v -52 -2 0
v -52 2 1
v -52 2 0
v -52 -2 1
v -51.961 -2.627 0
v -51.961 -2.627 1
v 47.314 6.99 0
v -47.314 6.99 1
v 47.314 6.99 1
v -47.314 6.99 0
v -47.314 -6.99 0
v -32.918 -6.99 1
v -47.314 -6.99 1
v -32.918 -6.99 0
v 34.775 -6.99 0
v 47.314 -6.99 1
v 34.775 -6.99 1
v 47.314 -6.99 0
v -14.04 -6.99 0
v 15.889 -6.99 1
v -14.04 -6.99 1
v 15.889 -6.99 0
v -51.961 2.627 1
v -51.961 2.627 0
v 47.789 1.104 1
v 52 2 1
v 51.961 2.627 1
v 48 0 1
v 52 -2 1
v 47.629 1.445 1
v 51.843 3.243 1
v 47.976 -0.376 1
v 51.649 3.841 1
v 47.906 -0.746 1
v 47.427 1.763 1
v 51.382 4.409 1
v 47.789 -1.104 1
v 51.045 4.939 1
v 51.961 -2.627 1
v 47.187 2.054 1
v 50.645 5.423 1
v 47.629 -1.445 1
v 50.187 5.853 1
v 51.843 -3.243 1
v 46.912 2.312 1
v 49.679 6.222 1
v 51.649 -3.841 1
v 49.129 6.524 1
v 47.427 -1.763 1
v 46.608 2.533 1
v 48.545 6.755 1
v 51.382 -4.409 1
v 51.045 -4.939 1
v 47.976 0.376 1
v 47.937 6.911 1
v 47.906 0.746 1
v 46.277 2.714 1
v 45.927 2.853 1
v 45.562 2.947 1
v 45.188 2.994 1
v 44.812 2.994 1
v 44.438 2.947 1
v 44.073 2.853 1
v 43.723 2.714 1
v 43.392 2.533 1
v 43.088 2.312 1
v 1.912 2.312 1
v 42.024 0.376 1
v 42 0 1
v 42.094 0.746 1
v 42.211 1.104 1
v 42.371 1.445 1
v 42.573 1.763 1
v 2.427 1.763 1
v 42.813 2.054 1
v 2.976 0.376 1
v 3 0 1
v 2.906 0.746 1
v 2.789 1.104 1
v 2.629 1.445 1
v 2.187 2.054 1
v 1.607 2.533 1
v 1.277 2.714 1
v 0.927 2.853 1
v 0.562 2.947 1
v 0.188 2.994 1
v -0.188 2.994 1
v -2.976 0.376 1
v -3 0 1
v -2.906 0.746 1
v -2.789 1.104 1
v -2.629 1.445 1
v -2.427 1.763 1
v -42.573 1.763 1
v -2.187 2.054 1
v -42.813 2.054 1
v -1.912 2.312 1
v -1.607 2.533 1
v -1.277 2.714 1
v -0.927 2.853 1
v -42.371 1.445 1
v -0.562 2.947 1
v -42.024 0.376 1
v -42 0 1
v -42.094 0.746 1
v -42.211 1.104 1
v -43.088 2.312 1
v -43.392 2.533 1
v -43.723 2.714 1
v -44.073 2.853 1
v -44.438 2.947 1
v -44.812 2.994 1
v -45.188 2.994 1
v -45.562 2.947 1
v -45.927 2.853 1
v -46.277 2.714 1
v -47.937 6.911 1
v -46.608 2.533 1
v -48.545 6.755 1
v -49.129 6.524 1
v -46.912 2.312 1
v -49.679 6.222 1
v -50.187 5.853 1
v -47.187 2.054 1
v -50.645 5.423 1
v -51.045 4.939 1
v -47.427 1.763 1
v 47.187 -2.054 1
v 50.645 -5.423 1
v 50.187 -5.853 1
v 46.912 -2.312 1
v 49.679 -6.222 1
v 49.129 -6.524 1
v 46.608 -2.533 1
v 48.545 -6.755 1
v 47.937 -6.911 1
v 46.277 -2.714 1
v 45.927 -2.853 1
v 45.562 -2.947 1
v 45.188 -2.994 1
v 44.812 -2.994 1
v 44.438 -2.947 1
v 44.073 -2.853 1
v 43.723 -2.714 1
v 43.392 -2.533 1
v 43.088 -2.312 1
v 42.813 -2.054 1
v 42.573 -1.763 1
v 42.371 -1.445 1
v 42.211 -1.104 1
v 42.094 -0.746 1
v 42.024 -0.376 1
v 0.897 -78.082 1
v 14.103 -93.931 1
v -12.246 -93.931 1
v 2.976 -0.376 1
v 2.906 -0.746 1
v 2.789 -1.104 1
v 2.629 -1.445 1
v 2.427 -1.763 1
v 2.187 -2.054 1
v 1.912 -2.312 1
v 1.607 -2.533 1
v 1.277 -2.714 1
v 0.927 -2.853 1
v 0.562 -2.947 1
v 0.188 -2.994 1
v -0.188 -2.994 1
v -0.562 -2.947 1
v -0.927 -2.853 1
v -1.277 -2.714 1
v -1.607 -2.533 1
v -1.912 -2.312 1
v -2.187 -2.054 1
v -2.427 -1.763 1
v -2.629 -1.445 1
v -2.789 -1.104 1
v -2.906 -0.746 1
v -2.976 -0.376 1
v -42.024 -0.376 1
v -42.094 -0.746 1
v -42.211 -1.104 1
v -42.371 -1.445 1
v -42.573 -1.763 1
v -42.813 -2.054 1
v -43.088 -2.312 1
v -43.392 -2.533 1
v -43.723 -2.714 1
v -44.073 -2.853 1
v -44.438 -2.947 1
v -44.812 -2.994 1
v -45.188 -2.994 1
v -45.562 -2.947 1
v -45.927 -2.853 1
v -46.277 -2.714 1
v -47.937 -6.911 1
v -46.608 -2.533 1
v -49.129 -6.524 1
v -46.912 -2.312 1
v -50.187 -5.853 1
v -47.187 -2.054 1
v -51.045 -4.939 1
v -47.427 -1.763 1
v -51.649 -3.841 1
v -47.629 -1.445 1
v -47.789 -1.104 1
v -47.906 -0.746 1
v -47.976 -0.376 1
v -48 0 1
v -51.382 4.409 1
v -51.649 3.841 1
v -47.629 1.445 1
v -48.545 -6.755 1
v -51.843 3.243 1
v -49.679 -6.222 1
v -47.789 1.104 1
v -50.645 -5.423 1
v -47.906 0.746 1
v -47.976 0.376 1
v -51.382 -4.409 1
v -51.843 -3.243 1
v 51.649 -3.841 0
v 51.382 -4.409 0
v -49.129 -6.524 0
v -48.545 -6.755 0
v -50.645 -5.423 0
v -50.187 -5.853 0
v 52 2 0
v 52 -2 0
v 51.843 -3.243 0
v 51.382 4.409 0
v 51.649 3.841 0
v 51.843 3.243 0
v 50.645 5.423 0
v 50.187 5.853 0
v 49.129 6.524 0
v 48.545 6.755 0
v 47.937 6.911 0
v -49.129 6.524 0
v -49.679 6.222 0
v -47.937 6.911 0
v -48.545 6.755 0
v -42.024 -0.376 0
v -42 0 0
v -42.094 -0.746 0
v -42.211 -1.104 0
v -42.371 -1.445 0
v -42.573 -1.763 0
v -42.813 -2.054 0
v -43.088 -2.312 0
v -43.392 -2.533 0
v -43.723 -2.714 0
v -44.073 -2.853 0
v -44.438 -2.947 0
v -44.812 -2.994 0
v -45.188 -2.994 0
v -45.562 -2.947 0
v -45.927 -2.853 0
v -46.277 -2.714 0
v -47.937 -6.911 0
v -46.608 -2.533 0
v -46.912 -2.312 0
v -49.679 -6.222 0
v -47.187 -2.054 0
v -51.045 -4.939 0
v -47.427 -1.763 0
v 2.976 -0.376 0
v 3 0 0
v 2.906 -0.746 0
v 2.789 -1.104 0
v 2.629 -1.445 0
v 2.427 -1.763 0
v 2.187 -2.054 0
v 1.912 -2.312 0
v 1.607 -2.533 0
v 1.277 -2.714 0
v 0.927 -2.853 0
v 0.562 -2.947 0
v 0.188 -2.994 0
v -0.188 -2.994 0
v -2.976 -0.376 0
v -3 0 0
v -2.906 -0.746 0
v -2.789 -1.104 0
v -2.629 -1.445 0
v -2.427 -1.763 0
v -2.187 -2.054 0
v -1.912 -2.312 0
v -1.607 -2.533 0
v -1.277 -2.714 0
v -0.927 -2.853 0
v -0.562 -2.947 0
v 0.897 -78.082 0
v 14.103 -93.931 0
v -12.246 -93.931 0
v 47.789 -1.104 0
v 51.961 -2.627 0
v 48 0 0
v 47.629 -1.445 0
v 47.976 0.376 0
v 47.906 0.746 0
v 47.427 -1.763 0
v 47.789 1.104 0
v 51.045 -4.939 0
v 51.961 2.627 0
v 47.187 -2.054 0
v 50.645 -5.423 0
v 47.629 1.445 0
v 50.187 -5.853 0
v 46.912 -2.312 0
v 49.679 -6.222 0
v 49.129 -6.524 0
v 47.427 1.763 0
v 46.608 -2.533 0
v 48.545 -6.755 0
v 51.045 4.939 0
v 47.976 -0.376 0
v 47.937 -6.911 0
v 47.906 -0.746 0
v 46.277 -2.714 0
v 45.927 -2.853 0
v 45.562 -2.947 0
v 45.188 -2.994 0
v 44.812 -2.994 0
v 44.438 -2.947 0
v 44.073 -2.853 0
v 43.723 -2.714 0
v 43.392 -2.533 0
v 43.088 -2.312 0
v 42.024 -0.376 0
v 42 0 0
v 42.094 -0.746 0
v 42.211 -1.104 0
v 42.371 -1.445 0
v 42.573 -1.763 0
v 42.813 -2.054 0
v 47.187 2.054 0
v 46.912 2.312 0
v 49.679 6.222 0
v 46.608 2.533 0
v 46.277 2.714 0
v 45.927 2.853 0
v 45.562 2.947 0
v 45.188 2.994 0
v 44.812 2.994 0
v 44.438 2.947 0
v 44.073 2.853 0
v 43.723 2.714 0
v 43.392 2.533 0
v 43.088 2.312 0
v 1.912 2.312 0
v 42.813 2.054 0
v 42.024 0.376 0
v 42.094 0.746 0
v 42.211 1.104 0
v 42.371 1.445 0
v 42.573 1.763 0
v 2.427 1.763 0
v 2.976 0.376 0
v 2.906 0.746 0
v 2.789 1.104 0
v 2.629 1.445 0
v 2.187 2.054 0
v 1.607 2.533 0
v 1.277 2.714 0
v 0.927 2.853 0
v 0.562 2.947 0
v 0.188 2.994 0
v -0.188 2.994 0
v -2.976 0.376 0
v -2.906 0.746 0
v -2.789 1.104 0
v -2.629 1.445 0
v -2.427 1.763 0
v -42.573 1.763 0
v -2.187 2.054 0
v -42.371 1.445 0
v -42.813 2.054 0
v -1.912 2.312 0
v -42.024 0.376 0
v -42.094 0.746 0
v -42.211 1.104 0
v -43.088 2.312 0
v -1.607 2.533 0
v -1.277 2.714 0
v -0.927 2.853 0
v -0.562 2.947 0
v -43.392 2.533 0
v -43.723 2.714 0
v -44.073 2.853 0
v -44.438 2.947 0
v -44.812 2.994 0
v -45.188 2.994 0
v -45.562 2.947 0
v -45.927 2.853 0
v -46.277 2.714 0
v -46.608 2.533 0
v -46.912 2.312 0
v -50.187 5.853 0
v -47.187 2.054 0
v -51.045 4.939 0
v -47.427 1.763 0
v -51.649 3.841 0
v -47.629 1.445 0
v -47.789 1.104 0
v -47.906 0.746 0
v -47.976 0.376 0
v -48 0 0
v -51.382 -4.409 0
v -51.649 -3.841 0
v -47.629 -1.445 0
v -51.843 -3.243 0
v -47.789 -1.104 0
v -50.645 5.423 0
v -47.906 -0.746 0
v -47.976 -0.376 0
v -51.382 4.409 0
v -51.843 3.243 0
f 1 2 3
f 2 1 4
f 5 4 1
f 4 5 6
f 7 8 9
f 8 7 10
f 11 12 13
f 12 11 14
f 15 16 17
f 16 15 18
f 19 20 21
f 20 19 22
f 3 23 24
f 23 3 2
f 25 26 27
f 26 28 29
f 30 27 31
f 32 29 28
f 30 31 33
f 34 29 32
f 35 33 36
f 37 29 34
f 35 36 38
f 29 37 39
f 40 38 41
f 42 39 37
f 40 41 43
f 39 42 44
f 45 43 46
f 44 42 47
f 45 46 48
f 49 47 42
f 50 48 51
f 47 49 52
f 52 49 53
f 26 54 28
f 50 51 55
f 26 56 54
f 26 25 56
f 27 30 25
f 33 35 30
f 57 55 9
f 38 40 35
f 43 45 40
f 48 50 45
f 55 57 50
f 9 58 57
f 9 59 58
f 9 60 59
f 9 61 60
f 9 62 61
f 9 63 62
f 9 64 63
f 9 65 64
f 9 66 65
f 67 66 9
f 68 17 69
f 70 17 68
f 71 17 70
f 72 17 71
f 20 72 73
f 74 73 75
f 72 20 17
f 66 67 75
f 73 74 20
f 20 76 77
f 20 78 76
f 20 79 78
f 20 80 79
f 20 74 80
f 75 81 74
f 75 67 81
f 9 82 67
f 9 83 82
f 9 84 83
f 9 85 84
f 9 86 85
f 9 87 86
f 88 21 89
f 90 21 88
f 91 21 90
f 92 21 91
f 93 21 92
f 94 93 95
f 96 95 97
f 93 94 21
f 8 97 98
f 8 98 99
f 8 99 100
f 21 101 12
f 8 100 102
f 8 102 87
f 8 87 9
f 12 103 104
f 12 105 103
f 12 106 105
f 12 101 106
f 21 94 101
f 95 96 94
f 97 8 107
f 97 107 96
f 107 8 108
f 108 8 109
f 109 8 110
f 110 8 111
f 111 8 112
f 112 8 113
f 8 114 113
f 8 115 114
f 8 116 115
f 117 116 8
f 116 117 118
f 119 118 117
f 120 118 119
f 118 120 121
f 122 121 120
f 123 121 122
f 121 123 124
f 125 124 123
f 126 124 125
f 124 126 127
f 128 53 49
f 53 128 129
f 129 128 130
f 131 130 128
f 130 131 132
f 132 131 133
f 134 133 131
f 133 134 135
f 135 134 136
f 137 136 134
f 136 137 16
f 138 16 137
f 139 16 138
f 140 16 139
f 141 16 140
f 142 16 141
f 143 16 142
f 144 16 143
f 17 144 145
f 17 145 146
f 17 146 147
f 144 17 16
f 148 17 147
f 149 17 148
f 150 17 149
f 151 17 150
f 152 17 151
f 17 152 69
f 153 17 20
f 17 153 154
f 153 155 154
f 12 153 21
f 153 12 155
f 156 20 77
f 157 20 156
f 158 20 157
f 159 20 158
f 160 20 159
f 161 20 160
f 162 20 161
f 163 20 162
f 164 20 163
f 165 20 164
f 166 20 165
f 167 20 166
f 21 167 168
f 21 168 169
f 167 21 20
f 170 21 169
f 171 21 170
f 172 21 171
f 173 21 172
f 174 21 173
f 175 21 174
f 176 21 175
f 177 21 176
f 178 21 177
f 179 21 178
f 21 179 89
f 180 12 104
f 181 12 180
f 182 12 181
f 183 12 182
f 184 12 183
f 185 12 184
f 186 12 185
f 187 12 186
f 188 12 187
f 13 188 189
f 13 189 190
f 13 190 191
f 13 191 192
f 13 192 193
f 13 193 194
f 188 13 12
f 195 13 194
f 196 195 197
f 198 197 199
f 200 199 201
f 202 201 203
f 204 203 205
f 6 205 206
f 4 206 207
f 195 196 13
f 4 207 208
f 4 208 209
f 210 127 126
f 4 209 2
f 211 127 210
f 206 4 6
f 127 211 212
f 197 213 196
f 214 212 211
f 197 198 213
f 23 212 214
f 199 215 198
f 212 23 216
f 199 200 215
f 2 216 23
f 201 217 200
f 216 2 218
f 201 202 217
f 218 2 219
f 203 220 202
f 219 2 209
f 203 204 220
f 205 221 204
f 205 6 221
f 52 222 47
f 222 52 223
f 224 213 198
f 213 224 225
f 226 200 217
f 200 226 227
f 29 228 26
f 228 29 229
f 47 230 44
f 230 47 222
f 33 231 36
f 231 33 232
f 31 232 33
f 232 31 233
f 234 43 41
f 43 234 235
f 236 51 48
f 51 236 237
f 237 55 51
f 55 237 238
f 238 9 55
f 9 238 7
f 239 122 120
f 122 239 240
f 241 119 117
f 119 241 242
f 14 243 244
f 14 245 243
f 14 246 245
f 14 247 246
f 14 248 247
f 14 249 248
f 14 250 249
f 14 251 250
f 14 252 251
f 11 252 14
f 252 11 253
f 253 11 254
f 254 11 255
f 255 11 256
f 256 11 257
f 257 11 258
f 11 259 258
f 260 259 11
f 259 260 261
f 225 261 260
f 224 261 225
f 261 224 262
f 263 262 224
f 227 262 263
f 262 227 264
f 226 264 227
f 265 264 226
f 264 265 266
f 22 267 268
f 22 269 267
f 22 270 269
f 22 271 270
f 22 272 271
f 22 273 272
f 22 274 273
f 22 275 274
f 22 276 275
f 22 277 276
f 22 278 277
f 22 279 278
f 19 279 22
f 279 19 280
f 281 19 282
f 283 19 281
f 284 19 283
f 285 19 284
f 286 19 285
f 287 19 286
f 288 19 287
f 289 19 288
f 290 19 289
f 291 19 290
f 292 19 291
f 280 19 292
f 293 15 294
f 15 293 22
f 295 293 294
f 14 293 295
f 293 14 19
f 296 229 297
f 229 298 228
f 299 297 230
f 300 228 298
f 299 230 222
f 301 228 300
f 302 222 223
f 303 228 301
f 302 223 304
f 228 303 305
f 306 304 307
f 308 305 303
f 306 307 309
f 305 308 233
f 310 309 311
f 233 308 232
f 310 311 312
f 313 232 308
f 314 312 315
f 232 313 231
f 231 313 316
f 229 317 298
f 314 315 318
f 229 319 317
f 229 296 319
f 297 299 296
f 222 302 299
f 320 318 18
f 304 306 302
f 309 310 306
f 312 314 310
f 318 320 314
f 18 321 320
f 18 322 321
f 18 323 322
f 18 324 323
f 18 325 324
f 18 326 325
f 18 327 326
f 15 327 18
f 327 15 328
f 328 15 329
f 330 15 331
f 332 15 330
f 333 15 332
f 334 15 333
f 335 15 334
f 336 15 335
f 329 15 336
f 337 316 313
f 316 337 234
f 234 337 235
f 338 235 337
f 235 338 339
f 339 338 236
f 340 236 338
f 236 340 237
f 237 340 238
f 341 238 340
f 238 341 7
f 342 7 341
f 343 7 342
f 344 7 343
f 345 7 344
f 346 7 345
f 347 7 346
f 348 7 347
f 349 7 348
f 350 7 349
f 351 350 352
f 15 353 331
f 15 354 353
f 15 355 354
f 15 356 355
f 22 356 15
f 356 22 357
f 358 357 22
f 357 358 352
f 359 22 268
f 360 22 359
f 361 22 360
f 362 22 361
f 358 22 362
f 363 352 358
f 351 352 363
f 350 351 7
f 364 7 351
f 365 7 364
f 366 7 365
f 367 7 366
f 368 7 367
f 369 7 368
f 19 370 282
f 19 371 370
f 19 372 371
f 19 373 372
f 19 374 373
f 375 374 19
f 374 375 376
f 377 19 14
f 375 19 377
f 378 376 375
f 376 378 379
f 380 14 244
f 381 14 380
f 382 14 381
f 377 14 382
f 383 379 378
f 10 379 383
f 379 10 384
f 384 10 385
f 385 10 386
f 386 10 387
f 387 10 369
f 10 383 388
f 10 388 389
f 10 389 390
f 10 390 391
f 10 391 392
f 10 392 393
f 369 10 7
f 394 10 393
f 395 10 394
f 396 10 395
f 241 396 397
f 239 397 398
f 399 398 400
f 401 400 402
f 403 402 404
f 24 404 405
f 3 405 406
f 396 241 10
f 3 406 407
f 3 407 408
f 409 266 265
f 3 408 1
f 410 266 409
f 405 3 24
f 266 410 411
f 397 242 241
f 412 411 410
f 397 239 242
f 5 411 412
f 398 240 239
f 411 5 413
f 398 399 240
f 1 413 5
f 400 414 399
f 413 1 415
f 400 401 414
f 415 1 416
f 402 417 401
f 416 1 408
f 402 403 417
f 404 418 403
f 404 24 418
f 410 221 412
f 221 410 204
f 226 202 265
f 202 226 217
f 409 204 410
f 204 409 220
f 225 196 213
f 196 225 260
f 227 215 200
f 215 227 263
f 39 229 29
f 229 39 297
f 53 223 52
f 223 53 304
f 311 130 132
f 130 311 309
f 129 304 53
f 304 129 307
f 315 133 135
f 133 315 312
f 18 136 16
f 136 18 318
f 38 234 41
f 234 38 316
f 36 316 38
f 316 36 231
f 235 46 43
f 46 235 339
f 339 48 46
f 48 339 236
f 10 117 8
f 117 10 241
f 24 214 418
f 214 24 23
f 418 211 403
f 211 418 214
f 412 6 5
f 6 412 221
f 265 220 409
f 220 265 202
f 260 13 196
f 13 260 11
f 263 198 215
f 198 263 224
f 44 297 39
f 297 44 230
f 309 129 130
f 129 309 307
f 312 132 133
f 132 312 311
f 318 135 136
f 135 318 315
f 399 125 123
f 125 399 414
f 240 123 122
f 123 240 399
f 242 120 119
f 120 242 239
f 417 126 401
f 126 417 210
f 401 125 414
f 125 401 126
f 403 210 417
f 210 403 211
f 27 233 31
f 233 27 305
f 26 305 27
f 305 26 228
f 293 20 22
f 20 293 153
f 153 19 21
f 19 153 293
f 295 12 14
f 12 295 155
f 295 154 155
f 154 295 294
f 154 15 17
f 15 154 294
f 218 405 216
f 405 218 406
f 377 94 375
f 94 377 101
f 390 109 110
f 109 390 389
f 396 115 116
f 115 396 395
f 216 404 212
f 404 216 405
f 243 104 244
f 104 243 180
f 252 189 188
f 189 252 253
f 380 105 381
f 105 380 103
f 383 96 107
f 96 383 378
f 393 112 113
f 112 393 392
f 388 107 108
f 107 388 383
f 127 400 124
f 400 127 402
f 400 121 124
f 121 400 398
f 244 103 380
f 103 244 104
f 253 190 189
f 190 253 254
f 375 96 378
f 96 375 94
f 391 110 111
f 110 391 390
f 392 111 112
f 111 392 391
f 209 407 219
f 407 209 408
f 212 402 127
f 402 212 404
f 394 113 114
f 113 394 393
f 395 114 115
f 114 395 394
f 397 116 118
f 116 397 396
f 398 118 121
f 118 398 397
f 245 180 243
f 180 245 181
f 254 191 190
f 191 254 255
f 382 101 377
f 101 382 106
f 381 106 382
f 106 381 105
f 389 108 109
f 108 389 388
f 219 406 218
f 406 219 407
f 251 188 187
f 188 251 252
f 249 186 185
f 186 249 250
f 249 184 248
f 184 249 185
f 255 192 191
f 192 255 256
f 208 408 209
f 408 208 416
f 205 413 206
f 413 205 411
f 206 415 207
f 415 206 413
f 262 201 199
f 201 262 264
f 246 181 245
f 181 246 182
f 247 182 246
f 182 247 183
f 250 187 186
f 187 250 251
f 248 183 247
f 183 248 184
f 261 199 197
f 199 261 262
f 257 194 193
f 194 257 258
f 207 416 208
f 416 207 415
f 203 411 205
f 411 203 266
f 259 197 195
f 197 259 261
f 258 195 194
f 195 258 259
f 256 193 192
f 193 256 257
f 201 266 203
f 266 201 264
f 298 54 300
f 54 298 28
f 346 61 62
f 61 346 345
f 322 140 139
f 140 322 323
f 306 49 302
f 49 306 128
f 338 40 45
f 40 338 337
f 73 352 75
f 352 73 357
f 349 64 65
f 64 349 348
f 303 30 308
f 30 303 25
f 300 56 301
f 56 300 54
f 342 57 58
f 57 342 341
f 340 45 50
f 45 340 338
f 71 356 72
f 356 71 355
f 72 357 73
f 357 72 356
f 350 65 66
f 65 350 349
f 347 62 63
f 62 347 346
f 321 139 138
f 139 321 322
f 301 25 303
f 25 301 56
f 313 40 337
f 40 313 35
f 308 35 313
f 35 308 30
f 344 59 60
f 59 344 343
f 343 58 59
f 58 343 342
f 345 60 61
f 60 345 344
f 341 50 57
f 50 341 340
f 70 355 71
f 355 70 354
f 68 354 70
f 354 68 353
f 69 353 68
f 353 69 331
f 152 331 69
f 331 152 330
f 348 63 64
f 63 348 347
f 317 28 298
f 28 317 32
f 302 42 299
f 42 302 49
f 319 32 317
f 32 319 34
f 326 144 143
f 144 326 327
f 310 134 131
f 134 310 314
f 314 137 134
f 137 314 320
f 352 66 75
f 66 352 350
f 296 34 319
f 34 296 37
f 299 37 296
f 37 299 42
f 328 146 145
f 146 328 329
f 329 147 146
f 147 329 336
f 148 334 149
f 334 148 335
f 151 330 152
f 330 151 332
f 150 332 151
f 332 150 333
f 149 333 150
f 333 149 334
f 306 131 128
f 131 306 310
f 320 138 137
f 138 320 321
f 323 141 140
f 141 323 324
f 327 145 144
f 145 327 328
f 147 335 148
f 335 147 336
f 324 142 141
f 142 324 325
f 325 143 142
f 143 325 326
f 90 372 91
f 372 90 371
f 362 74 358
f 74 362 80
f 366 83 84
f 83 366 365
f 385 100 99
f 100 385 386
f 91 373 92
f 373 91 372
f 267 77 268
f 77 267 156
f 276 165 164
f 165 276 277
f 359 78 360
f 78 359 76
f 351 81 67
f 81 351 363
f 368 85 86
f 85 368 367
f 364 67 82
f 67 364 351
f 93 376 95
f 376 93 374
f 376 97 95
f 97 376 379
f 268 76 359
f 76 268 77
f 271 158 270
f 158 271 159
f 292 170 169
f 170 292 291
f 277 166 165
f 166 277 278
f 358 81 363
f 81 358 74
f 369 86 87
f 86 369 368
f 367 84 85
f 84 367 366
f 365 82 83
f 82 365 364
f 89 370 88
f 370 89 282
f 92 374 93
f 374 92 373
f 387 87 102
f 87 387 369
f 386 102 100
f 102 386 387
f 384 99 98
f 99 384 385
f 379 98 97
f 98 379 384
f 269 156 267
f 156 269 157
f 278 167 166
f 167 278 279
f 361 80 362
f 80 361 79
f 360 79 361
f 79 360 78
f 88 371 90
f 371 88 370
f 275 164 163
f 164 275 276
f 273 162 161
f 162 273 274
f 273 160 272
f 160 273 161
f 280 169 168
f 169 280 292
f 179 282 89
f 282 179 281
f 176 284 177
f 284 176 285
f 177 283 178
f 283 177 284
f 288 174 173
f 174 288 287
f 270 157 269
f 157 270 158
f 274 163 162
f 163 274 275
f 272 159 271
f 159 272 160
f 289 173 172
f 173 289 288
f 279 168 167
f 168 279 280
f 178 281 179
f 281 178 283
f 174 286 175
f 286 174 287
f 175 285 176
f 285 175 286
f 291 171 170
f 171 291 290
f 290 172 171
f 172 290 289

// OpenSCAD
$fn = 50;


difference() {
	union() {
		translate(v = [0, 0, 0]) {
			rotate(a = [0, 0, 0]) {
				hull() {
					translate(v = [-47.0000000000, 2.0000000000, 0]) {
						rotate(a = [0, 0, 0]) {
							translate(v = [0, 0, 0]) {
								rotate(a = [0, 0, 0]) {
									cylinder(h = 1, r = 5);
								}
							}
						}
					}
					translate(v = [47.0000000000, 2.0000000000, 0]) {
						rotate(a = [0, 0, 0]) {
							translate(v = [0, 0, 0]) {
								rotate(a = [0, 0, 0]) {
									cylinder(h = 1, r = 5);
								}
							}
						}
					}
					translate(v = [-47.0000000000, -2.0000000000, 0]) {
						rotate(a = [0, 0, 0]) {
							translate(v = [0, 0, 0]) {
								rotate(a = [0, 0, 0]) {
									cylinder(h = 1, r = 5);
								}
							}
						}
					}
					translate(v = [47.0000000000, -2.0000000000, 0]) {
						rotate(a = [0, 0, 0]) {
							translate(v = [0, 0, 0]) {
								rotate(a = [0, 0, 0]) {
									cylinder(h = 1, r = 5);
								}
							}
						}
					}
				}
			}
		}
		translate(v = [0, 0, 0]) {
			rotate(a = [0, 0, 0]) {
				linear_extrude(height = 1) {
					text(font = "DejaVu Sans Mono:style=Bold", halign = "center", size = 95, text = "V", valign = "top");
				}
			}
		}
	}
	union() {
		translate(v = [-45.0000000000, 0.0000000000, -125.0000000000]) {
			rotate(a = [0, 0, 0]) {
				cylinder(h = 250, r = 3.0000000000);
			}
		}
		translate(v = [45.0000000000, 0.0000000000, -125.0000000000]) {
			rotate(a = [0, 0, 0]) {
				cylinder(h = 250, r = 3.0000000000);
			}
		}
		translate(v = [45.0000000000, 0.0000000000, -125.0000000000]) {
			rotate(a = [0, 0, 0]) {
				cylinder(h = 250, r = 3.0000000000);
			}
		}
		translate(v = [0, 0, -125.0000000000]) {
			rotate(a = [0, 0, 0]) {
				cylinder(h = 250, r = 3.0000000000);
			}
		}
	}
}
